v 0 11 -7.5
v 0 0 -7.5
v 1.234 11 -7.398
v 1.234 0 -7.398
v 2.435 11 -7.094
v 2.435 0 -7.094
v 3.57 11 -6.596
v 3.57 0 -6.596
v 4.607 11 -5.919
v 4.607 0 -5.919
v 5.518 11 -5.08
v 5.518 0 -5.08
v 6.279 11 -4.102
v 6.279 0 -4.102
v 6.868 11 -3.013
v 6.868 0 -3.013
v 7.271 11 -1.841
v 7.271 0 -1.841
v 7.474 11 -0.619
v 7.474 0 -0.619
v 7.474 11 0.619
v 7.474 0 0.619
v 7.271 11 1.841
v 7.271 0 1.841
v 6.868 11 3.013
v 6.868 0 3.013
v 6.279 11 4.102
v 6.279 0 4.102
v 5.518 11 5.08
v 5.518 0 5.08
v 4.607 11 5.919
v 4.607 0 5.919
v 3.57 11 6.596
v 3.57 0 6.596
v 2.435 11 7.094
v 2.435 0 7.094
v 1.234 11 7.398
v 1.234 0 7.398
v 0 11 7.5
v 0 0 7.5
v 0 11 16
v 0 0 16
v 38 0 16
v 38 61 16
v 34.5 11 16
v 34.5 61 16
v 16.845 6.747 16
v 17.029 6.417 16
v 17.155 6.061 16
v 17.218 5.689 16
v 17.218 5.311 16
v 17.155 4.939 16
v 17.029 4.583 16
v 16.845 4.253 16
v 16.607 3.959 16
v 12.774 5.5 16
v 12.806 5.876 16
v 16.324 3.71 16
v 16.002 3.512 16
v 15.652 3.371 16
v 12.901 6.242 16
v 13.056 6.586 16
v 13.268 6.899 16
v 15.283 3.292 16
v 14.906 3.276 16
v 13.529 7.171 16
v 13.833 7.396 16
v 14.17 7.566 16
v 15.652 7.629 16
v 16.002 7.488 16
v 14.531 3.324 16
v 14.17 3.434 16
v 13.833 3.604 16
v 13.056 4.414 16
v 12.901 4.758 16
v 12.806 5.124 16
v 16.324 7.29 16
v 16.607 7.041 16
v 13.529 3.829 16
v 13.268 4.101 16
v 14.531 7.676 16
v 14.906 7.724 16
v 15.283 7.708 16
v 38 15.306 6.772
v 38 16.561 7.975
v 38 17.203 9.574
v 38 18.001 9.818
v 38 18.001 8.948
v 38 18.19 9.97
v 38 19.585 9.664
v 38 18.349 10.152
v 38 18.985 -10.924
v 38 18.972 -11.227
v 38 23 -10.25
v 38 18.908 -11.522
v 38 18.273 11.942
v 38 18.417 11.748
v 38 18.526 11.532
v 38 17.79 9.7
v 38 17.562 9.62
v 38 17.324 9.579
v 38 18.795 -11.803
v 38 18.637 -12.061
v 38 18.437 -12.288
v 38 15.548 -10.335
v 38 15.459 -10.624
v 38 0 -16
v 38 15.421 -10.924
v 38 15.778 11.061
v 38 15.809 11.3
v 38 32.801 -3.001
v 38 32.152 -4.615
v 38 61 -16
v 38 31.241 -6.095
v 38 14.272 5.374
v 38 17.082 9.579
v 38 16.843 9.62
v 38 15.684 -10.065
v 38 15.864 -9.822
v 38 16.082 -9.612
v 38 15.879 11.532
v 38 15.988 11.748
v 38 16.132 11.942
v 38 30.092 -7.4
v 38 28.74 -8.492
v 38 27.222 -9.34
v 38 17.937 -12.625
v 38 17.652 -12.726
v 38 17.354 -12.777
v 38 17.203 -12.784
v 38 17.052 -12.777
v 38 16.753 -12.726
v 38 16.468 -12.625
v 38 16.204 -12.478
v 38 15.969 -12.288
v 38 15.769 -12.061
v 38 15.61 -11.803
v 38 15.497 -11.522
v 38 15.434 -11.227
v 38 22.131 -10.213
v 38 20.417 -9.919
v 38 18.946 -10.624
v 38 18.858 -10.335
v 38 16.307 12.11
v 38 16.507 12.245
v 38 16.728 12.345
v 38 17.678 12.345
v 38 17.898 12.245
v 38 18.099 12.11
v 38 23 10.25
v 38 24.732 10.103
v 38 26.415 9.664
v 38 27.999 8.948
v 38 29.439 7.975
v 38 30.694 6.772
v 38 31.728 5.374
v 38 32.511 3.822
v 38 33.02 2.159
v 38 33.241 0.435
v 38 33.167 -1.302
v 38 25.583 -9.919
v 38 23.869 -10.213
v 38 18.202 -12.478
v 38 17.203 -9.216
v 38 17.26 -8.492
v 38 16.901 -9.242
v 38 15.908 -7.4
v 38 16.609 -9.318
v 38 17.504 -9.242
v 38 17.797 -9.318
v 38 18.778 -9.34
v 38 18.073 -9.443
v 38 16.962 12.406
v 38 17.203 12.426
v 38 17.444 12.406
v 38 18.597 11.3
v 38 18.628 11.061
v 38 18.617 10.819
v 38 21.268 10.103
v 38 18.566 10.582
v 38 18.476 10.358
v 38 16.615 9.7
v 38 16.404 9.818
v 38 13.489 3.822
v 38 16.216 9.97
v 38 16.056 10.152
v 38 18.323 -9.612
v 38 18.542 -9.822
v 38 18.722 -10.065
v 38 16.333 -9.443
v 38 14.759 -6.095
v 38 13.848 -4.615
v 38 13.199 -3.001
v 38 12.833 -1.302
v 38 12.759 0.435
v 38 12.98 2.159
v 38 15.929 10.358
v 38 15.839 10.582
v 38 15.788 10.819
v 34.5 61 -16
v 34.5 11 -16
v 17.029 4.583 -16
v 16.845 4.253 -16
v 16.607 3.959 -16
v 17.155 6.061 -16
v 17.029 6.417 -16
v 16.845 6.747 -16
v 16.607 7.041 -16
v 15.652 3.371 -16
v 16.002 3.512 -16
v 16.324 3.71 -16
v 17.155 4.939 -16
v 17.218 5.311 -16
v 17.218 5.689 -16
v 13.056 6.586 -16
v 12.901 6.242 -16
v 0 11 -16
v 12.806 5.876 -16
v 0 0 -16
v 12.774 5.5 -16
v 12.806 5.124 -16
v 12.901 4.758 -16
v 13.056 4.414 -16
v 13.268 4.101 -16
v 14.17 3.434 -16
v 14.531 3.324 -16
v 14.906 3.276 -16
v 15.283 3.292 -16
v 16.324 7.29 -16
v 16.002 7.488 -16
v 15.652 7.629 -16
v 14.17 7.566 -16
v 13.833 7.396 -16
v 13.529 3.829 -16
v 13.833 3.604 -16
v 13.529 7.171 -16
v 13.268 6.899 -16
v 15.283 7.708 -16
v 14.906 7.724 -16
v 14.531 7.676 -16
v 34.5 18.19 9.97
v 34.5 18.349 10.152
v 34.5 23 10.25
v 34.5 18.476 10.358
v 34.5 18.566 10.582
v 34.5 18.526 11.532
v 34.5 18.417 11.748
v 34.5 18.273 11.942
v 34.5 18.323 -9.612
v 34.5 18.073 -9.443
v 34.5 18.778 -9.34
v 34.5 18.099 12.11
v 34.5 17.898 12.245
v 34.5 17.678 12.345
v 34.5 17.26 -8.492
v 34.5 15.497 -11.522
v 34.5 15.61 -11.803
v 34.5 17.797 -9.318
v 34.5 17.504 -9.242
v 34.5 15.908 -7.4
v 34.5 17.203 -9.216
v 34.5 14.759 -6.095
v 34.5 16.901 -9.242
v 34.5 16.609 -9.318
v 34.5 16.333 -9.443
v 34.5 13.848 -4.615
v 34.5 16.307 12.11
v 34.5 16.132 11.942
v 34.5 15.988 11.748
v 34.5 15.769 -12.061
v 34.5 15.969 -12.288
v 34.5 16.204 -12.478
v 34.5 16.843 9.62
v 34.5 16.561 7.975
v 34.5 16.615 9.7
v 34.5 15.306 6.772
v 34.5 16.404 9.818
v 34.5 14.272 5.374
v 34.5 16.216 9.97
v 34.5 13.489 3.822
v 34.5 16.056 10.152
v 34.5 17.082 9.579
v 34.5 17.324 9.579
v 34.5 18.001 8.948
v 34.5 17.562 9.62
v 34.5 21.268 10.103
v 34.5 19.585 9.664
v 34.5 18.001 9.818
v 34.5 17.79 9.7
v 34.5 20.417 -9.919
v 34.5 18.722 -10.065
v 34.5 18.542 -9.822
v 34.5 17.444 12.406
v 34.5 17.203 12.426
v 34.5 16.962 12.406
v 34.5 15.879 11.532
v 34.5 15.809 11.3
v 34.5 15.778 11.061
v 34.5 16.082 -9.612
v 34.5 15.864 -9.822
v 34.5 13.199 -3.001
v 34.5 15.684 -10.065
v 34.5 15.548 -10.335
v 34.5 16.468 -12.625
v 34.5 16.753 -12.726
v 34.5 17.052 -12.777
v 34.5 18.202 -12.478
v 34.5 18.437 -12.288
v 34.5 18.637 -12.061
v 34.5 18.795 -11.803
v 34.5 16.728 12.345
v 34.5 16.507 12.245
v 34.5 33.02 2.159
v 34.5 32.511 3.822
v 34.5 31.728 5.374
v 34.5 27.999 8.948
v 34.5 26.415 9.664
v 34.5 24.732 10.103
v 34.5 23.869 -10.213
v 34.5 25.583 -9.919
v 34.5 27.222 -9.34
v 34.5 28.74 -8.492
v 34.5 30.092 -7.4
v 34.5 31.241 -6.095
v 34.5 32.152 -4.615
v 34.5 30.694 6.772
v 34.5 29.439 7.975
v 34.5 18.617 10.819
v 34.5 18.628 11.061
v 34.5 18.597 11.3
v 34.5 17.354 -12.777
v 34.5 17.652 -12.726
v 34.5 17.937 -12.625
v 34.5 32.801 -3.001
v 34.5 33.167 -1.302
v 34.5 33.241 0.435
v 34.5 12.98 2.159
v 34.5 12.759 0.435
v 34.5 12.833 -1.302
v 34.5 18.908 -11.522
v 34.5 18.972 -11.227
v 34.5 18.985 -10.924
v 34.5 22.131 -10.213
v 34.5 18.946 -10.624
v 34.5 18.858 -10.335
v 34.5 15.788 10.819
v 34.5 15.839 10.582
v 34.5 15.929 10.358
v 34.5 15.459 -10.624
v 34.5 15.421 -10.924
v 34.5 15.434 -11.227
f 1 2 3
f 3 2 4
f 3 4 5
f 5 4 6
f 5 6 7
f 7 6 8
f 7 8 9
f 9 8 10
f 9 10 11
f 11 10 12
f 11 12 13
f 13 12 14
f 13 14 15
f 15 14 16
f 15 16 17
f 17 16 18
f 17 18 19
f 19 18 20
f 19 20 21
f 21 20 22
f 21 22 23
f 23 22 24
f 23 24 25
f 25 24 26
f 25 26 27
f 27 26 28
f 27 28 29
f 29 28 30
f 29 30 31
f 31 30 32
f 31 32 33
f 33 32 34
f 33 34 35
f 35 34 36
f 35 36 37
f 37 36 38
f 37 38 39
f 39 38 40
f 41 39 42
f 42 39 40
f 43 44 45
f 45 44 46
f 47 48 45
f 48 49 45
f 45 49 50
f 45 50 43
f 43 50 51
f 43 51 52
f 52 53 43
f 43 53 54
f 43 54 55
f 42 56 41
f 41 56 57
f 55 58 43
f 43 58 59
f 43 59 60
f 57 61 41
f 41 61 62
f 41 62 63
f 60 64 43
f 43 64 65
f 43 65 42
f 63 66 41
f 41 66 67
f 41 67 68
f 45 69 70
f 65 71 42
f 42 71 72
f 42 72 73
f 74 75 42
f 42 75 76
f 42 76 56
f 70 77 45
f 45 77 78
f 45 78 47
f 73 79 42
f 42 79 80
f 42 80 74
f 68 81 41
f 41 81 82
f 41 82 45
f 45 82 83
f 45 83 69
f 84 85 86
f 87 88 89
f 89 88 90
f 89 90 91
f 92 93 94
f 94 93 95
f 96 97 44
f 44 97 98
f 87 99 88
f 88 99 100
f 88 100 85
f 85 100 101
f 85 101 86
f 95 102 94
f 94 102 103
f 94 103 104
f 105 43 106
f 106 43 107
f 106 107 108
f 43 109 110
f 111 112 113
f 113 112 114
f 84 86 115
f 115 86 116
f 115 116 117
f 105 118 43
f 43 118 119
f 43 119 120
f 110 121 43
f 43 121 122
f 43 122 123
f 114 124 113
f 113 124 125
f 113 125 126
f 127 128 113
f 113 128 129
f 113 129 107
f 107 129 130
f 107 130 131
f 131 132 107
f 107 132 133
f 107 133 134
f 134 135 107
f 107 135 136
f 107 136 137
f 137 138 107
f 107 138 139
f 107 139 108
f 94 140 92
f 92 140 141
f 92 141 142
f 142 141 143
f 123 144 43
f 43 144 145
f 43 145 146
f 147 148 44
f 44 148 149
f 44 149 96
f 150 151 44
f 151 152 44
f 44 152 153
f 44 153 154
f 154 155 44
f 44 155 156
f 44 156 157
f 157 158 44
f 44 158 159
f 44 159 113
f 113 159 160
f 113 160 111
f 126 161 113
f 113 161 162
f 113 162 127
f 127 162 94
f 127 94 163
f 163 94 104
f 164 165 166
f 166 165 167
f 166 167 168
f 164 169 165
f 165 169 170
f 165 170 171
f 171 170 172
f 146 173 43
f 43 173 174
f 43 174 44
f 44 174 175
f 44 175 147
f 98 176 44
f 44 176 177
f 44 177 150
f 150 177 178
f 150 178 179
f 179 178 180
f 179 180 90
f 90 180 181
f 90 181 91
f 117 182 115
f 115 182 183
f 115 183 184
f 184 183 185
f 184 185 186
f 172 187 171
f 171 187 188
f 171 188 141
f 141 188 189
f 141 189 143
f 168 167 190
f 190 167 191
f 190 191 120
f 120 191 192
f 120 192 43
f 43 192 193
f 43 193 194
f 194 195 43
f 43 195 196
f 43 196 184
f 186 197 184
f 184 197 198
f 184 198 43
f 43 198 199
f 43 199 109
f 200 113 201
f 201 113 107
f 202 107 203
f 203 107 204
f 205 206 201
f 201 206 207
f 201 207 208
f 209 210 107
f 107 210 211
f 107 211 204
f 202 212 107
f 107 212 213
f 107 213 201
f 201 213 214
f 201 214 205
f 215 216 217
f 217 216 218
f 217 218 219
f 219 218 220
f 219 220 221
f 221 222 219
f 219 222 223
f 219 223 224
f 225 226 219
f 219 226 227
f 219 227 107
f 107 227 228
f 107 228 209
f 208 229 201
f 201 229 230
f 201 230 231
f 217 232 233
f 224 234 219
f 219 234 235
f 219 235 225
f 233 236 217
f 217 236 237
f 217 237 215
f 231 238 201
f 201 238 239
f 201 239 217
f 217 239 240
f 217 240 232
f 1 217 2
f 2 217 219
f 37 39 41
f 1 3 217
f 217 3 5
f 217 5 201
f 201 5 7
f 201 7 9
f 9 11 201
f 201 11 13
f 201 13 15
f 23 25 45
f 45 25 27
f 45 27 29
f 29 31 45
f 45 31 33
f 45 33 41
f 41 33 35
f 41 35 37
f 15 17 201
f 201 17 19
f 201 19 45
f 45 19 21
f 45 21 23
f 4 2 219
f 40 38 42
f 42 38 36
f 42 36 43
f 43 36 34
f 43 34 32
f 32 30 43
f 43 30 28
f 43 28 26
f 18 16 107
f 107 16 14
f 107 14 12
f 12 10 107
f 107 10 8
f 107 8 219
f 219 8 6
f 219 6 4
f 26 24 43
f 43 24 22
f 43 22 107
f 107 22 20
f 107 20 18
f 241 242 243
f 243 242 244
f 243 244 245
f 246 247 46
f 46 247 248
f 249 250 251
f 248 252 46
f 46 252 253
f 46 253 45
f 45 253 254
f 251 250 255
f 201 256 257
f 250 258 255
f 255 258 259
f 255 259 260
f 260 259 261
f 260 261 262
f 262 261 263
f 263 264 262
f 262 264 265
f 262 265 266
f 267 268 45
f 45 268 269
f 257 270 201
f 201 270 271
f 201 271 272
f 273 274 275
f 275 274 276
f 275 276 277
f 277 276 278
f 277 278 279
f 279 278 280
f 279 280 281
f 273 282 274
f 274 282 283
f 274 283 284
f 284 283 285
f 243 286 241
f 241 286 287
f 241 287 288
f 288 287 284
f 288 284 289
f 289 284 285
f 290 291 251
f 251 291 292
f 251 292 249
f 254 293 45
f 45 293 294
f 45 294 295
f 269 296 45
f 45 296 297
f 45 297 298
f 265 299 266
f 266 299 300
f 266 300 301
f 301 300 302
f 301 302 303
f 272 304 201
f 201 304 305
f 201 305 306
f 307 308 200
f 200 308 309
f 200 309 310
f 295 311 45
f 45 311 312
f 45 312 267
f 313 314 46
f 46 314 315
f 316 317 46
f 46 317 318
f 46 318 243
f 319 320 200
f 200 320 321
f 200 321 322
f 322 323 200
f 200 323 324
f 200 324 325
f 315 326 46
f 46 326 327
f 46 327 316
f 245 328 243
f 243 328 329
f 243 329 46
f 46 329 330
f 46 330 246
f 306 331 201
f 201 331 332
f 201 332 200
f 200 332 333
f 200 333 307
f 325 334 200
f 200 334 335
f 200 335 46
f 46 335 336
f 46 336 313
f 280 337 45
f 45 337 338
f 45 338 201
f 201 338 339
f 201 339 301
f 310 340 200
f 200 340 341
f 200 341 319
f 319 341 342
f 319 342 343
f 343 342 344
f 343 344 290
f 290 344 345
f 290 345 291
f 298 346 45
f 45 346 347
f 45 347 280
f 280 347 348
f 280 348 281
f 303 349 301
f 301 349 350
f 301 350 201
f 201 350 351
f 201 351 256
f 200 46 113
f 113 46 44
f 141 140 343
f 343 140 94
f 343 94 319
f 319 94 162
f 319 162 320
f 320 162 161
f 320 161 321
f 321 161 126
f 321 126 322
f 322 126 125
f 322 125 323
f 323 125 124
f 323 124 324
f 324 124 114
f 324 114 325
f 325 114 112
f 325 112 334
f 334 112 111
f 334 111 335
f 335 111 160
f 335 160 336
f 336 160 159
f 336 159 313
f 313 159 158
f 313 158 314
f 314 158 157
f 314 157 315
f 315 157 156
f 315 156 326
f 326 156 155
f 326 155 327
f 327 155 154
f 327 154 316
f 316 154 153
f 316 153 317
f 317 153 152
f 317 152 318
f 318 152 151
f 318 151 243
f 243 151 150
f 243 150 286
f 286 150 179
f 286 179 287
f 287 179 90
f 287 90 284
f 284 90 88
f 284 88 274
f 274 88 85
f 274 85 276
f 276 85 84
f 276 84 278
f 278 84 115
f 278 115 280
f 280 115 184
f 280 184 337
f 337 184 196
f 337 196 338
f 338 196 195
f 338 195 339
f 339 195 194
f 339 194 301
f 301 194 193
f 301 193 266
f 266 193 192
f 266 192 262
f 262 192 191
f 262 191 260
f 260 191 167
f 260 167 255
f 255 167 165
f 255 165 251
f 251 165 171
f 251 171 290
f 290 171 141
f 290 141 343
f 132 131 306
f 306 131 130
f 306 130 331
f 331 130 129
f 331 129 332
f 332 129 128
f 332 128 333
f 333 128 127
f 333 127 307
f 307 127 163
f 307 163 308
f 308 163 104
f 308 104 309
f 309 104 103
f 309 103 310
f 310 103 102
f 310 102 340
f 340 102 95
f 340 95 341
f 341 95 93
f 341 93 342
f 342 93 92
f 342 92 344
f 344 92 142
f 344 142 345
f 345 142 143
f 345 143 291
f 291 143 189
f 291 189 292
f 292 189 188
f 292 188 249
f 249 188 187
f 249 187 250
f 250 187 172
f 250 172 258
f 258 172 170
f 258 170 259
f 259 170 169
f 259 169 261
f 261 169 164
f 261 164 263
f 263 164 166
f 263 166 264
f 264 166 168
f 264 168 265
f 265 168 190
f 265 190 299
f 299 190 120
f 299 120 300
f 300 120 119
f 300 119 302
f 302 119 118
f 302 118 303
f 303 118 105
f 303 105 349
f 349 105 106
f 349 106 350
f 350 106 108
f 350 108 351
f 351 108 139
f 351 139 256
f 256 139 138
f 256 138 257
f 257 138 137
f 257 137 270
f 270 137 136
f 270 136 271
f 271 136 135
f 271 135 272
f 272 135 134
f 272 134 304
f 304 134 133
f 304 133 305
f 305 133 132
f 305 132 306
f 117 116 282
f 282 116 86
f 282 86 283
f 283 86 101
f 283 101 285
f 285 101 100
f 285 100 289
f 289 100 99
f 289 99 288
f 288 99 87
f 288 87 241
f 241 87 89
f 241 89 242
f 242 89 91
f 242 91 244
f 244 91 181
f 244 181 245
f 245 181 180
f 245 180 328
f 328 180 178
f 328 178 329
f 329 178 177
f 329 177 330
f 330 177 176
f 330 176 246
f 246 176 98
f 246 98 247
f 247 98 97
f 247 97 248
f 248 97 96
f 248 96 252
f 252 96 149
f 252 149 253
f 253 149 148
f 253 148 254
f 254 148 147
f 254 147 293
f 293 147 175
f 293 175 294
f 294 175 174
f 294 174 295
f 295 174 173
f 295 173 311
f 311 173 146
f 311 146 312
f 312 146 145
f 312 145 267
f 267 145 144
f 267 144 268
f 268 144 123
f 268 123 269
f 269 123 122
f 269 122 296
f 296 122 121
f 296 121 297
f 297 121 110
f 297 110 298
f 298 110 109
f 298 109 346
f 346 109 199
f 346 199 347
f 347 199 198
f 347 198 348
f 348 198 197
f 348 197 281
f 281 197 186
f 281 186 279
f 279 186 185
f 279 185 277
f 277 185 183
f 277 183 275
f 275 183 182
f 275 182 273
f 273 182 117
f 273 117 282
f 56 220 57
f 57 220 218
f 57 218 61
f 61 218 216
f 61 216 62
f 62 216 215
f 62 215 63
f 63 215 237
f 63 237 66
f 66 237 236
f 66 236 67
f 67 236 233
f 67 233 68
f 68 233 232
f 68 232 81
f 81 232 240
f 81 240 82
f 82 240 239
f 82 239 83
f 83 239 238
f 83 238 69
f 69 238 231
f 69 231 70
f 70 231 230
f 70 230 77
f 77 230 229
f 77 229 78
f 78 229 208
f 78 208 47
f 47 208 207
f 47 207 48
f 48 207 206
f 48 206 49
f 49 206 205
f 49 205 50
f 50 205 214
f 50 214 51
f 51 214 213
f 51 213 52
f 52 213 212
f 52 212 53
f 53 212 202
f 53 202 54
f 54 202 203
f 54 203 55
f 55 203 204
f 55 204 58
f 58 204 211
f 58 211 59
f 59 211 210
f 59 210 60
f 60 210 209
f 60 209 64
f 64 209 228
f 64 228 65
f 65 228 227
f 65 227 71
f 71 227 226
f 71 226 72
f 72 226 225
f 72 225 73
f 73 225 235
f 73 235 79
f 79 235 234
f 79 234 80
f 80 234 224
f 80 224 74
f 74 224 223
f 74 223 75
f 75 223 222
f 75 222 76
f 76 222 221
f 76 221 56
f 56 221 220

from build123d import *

# Parameters (mm, degrees)
BOSS_EXTRUDE1_DEPTH = 11
SKETCH2_W           = 3.5
SKETCH2_H           = 32
BOSS_EXTRUDE2_DEPTH = 50
SKETCH3_R           = 10.25
SKETCH3_R_2         = 1.783609491
SKETCH3_R_3         = 1.426196869
CUT_EXTRUDE1_DEPTH  = 50
SKETCH4_R           = 2.22645949
CUT_EXTRUDE2_DEPTH  = 36


with BuildPart() as part:
    # Sketch1 → Boss-Extrude1 (new body)
    with BuildSketch(Plane(origin=(0, 0, 0), x_dir=(1, 0, 0), z_dir=(0, 1, 0))):
        with BuildLine():
            Line((38, 16), (0, 16))
            Line((0, 16), (0, 7.5))
            ThreePointArc((0, 7.5), (5.303300859, 5.303300859), (7.5, 0))
            ThreePointArc((7.5, 0), (5.303300859, -5.303300859), (0, -7.5))
            Line((0, -7.5), (0, -16))
            Line((0, -16), (38, -16))
            Line((38, -16), (38, 16))
        make_face()
    extrude(amount=BOSS_EXTRUDE1_DEPTH)

    # Sketch2 → Boss-Extrude2 (add)
    with BuildSketch(Plane(origin=(0, 11, 0), x_dir=(1, 0, 0), z_dir=(0, 1, 0))):
        with Locations((36.25, 0)):
            Rectangle(SKETCH2_W, SKETCH2_H)
    extrude(amount=BOSS_EXTRUDE2_DEPTH)

    # Sketch3 → Cut-Extrude1 (cut)
    with BuildSketch(Plane.ZY.offset(-34.5)):
        with Locations((0, 23)):
            Circle(SKETCH3_R)
        with Locations((-11, 17.202811543)):
            Circle(SKETCH3_R_2)
        with Locations((11, 17.202811543)):
            Circle(SKETCH3_R_3)
    extrude(amount=-CUT_EXTRUDE1_DEPTH, mode=Mode.SUBTRACT)

    # Sketch4 → Cut-Extrude2 (cut)
    with BuildSketch(Plane(origin=(0, 0, -16), x_dir=(-1, 0, 0), z_dir=(0, 0, -1))):
        with Locations((-15, 5.5)):
            Circle(SKETCH4_R)
    extrude(amount=-CUT_EXTRUDE2_DEPTH, mode=Mode.SUBTRACT)


solid = part.part
